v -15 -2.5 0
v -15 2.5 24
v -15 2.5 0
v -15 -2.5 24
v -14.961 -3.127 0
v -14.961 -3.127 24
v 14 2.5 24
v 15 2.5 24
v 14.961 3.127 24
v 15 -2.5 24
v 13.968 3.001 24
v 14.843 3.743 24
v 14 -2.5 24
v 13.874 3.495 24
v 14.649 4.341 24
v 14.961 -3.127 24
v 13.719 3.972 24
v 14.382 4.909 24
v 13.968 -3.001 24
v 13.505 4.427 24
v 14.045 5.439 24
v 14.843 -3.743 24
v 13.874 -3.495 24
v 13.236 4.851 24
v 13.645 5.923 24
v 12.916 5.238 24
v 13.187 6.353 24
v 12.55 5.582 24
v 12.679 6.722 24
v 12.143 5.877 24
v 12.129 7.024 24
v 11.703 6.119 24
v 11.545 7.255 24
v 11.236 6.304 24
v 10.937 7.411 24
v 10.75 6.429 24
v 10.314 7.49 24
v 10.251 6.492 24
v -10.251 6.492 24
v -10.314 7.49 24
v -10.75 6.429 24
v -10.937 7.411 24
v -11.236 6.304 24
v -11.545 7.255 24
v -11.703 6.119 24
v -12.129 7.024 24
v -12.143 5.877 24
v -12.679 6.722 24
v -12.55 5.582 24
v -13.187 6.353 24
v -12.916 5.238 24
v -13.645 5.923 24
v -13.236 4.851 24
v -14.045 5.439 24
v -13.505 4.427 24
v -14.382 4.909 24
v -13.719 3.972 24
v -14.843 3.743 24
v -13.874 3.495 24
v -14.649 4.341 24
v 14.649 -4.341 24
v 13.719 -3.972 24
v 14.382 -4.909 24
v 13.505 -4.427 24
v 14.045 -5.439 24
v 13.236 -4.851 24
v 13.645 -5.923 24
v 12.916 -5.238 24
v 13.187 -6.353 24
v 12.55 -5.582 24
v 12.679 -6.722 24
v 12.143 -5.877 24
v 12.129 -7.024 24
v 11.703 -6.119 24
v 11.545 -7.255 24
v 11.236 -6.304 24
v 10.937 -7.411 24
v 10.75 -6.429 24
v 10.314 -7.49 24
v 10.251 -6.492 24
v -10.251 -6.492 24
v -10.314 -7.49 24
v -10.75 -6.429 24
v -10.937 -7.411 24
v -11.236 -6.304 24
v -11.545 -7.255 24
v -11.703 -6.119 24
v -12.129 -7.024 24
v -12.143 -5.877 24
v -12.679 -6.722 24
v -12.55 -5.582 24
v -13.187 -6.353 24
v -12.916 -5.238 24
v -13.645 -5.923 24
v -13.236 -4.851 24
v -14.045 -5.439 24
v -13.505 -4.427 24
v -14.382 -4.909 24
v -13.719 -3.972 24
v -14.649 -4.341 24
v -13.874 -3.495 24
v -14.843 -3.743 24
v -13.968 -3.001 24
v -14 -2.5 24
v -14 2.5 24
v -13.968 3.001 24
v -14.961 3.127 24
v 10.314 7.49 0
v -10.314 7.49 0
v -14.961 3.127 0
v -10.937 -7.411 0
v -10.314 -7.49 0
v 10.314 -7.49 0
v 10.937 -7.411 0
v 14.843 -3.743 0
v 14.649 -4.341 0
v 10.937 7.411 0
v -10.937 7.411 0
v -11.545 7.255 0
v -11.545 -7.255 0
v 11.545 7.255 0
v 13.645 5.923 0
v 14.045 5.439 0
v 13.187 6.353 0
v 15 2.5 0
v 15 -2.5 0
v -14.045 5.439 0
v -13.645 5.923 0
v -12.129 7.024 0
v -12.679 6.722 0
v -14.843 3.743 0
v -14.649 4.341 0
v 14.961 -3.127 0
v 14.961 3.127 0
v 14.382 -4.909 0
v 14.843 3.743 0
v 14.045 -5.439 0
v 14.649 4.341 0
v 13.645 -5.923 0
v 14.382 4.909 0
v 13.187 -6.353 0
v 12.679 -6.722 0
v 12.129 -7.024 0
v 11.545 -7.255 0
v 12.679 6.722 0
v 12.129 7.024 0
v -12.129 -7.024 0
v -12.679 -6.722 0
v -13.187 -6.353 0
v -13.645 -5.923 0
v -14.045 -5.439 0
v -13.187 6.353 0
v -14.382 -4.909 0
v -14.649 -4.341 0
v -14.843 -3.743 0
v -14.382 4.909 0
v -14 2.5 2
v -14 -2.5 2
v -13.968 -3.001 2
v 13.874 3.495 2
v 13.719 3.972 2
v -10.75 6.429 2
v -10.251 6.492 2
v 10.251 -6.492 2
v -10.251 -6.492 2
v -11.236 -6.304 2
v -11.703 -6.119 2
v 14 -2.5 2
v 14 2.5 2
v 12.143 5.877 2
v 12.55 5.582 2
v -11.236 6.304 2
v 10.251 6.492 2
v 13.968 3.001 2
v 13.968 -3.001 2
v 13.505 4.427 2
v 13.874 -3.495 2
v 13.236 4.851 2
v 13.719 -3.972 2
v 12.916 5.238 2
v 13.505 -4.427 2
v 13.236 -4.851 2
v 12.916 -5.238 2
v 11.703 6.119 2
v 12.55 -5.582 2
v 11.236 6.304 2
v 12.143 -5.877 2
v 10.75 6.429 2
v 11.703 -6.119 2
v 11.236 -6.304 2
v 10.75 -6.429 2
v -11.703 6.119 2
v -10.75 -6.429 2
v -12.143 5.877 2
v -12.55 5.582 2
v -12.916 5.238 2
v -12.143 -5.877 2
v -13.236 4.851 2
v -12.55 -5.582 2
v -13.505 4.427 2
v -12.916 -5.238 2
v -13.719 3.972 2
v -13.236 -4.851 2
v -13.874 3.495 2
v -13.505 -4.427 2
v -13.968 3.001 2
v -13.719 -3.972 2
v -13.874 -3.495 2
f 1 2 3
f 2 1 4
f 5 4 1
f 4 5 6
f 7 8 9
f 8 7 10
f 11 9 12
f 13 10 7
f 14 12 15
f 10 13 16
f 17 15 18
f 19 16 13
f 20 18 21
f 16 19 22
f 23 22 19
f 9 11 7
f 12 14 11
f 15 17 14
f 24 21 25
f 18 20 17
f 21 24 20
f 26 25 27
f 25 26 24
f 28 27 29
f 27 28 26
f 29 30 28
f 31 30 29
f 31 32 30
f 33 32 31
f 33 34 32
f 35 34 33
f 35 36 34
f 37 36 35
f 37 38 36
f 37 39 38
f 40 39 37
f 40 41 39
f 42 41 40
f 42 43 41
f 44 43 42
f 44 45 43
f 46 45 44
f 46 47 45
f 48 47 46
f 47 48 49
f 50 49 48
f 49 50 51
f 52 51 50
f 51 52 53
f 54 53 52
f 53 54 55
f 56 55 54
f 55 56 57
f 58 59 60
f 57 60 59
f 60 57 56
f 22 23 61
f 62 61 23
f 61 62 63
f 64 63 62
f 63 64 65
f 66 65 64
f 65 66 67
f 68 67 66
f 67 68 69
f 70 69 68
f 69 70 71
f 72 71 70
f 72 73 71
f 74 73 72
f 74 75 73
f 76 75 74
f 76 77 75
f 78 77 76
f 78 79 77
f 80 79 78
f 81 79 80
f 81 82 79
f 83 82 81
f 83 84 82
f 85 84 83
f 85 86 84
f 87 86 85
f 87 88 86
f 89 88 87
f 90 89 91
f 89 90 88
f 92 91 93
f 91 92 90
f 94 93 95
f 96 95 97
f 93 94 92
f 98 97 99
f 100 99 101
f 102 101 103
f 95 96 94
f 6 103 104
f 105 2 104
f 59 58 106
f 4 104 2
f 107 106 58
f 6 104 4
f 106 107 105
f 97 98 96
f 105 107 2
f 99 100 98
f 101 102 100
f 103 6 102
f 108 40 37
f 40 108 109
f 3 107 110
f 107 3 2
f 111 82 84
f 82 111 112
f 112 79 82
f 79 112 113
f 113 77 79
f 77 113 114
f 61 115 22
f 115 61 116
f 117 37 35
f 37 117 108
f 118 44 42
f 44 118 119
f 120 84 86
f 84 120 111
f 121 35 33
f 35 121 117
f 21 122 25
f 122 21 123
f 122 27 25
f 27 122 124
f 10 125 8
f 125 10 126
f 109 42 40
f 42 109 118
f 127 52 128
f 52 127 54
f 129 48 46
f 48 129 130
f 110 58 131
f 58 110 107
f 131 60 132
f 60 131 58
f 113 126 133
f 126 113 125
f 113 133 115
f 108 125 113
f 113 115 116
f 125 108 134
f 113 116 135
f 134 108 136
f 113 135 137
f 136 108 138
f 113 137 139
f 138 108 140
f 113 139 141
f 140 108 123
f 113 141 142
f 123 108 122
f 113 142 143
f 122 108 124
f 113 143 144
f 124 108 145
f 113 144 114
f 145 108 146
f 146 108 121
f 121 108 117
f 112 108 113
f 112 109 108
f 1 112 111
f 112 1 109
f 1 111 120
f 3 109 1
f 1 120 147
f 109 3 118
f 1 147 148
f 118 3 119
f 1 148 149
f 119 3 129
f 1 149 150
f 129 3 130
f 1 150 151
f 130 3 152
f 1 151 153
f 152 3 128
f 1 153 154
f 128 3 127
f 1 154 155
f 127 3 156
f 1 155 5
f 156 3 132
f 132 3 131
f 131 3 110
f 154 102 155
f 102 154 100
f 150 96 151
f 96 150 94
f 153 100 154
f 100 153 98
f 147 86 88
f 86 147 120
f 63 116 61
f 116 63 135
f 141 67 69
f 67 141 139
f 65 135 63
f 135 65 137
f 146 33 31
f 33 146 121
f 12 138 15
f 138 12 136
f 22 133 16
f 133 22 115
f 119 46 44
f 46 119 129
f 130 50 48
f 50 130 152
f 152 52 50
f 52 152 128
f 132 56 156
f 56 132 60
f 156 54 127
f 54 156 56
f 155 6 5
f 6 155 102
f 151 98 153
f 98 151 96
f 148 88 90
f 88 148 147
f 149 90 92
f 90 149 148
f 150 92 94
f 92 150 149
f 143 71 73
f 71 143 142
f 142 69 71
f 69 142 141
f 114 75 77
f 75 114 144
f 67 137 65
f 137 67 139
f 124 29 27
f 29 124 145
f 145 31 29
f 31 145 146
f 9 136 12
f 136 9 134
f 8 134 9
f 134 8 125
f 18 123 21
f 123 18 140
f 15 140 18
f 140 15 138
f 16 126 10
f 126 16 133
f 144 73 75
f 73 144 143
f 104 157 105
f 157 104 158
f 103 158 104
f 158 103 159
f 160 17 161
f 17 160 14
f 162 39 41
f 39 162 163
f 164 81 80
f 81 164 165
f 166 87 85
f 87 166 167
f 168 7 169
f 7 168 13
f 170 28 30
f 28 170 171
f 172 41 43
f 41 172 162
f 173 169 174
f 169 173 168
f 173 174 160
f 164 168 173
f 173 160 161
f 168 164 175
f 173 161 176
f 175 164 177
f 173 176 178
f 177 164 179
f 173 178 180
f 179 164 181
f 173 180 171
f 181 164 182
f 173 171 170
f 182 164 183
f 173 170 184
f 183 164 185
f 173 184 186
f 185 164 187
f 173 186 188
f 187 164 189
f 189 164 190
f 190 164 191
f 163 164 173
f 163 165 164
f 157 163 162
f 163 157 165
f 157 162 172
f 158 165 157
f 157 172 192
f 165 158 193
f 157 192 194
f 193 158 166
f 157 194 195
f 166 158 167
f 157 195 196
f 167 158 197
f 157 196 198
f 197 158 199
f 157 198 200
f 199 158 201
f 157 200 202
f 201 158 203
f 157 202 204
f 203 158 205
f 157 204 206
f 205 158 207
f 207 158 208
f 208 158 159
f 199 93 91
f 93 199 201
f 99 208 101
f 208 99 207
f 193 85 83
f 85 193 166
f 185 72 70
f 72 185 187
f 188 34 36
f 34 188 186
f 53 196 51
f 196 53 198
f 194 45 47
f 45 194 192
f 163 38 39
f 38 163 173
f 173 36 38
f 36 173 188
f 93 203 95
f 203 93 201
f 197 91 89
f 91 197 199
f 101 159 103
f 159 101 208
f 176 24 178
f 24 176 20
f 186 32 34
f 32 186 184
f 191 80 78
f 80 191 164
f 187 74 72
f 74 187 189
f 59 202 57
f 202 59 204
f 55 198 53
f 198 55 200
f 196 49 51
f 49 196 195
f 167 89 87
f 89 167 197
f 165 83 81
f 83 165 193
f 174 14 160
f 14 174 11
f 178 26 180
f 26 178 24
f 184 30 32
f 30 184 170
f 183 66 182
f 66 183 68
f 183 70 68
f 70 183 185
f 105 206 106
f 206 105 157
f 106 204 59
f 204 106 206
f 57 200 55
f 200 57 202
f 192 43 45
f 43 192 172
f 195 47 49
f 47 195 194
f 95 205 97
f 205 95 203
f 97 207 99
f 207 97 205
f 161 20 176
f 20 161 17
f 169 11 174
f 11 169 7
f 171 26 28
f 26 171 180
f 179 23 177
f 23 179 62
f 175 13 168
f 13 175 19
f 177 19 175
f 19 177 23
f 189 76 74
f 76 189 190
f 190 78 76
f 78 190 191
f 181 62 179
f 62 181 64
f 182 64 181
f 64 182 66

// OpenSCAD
$fn = 50;


difference() {
	union() {
		hull() {
			translate(v = [-10.0000000000, 2.5000000000, 0]) {
				cylinder(h = 24, r = 5);
			}
			translate(v = [10.0000000000, 2.5000000000, 0]) {
				cylinder(h = 24, r = 5);
			}
			translate(v = [-10.0000000000, -2.5000000000, 0]) {
				cylinder(h = 24, r = 5);
			}
			translate(v = [10.0000000000, -2.5000000000, 0]) {
				cylinder(h = 24, r = 5);
			}
		}
	}
	union() {
		translate(v = [0, 0, 2]) {
			hull() {
				translate(v = [-10.0000000000, 2.5000000000, 0]) {
					cylinder(h = 22, r = 4);
				}
				translate(v = [10.0000000000, 2.5000000000, 0]) {
					cylinder(h = 22, r = 4);
				}
				translate(v = [-10.0000000000, -2.5000000000, 0]) {
					cylinder(h = 22, r = 4);
				}
				translate(v = [10.0000000000, -2.5000000000, 0]) {
					cylinder(h = 22, r = 4);
				}
			}
		}
	}
}
